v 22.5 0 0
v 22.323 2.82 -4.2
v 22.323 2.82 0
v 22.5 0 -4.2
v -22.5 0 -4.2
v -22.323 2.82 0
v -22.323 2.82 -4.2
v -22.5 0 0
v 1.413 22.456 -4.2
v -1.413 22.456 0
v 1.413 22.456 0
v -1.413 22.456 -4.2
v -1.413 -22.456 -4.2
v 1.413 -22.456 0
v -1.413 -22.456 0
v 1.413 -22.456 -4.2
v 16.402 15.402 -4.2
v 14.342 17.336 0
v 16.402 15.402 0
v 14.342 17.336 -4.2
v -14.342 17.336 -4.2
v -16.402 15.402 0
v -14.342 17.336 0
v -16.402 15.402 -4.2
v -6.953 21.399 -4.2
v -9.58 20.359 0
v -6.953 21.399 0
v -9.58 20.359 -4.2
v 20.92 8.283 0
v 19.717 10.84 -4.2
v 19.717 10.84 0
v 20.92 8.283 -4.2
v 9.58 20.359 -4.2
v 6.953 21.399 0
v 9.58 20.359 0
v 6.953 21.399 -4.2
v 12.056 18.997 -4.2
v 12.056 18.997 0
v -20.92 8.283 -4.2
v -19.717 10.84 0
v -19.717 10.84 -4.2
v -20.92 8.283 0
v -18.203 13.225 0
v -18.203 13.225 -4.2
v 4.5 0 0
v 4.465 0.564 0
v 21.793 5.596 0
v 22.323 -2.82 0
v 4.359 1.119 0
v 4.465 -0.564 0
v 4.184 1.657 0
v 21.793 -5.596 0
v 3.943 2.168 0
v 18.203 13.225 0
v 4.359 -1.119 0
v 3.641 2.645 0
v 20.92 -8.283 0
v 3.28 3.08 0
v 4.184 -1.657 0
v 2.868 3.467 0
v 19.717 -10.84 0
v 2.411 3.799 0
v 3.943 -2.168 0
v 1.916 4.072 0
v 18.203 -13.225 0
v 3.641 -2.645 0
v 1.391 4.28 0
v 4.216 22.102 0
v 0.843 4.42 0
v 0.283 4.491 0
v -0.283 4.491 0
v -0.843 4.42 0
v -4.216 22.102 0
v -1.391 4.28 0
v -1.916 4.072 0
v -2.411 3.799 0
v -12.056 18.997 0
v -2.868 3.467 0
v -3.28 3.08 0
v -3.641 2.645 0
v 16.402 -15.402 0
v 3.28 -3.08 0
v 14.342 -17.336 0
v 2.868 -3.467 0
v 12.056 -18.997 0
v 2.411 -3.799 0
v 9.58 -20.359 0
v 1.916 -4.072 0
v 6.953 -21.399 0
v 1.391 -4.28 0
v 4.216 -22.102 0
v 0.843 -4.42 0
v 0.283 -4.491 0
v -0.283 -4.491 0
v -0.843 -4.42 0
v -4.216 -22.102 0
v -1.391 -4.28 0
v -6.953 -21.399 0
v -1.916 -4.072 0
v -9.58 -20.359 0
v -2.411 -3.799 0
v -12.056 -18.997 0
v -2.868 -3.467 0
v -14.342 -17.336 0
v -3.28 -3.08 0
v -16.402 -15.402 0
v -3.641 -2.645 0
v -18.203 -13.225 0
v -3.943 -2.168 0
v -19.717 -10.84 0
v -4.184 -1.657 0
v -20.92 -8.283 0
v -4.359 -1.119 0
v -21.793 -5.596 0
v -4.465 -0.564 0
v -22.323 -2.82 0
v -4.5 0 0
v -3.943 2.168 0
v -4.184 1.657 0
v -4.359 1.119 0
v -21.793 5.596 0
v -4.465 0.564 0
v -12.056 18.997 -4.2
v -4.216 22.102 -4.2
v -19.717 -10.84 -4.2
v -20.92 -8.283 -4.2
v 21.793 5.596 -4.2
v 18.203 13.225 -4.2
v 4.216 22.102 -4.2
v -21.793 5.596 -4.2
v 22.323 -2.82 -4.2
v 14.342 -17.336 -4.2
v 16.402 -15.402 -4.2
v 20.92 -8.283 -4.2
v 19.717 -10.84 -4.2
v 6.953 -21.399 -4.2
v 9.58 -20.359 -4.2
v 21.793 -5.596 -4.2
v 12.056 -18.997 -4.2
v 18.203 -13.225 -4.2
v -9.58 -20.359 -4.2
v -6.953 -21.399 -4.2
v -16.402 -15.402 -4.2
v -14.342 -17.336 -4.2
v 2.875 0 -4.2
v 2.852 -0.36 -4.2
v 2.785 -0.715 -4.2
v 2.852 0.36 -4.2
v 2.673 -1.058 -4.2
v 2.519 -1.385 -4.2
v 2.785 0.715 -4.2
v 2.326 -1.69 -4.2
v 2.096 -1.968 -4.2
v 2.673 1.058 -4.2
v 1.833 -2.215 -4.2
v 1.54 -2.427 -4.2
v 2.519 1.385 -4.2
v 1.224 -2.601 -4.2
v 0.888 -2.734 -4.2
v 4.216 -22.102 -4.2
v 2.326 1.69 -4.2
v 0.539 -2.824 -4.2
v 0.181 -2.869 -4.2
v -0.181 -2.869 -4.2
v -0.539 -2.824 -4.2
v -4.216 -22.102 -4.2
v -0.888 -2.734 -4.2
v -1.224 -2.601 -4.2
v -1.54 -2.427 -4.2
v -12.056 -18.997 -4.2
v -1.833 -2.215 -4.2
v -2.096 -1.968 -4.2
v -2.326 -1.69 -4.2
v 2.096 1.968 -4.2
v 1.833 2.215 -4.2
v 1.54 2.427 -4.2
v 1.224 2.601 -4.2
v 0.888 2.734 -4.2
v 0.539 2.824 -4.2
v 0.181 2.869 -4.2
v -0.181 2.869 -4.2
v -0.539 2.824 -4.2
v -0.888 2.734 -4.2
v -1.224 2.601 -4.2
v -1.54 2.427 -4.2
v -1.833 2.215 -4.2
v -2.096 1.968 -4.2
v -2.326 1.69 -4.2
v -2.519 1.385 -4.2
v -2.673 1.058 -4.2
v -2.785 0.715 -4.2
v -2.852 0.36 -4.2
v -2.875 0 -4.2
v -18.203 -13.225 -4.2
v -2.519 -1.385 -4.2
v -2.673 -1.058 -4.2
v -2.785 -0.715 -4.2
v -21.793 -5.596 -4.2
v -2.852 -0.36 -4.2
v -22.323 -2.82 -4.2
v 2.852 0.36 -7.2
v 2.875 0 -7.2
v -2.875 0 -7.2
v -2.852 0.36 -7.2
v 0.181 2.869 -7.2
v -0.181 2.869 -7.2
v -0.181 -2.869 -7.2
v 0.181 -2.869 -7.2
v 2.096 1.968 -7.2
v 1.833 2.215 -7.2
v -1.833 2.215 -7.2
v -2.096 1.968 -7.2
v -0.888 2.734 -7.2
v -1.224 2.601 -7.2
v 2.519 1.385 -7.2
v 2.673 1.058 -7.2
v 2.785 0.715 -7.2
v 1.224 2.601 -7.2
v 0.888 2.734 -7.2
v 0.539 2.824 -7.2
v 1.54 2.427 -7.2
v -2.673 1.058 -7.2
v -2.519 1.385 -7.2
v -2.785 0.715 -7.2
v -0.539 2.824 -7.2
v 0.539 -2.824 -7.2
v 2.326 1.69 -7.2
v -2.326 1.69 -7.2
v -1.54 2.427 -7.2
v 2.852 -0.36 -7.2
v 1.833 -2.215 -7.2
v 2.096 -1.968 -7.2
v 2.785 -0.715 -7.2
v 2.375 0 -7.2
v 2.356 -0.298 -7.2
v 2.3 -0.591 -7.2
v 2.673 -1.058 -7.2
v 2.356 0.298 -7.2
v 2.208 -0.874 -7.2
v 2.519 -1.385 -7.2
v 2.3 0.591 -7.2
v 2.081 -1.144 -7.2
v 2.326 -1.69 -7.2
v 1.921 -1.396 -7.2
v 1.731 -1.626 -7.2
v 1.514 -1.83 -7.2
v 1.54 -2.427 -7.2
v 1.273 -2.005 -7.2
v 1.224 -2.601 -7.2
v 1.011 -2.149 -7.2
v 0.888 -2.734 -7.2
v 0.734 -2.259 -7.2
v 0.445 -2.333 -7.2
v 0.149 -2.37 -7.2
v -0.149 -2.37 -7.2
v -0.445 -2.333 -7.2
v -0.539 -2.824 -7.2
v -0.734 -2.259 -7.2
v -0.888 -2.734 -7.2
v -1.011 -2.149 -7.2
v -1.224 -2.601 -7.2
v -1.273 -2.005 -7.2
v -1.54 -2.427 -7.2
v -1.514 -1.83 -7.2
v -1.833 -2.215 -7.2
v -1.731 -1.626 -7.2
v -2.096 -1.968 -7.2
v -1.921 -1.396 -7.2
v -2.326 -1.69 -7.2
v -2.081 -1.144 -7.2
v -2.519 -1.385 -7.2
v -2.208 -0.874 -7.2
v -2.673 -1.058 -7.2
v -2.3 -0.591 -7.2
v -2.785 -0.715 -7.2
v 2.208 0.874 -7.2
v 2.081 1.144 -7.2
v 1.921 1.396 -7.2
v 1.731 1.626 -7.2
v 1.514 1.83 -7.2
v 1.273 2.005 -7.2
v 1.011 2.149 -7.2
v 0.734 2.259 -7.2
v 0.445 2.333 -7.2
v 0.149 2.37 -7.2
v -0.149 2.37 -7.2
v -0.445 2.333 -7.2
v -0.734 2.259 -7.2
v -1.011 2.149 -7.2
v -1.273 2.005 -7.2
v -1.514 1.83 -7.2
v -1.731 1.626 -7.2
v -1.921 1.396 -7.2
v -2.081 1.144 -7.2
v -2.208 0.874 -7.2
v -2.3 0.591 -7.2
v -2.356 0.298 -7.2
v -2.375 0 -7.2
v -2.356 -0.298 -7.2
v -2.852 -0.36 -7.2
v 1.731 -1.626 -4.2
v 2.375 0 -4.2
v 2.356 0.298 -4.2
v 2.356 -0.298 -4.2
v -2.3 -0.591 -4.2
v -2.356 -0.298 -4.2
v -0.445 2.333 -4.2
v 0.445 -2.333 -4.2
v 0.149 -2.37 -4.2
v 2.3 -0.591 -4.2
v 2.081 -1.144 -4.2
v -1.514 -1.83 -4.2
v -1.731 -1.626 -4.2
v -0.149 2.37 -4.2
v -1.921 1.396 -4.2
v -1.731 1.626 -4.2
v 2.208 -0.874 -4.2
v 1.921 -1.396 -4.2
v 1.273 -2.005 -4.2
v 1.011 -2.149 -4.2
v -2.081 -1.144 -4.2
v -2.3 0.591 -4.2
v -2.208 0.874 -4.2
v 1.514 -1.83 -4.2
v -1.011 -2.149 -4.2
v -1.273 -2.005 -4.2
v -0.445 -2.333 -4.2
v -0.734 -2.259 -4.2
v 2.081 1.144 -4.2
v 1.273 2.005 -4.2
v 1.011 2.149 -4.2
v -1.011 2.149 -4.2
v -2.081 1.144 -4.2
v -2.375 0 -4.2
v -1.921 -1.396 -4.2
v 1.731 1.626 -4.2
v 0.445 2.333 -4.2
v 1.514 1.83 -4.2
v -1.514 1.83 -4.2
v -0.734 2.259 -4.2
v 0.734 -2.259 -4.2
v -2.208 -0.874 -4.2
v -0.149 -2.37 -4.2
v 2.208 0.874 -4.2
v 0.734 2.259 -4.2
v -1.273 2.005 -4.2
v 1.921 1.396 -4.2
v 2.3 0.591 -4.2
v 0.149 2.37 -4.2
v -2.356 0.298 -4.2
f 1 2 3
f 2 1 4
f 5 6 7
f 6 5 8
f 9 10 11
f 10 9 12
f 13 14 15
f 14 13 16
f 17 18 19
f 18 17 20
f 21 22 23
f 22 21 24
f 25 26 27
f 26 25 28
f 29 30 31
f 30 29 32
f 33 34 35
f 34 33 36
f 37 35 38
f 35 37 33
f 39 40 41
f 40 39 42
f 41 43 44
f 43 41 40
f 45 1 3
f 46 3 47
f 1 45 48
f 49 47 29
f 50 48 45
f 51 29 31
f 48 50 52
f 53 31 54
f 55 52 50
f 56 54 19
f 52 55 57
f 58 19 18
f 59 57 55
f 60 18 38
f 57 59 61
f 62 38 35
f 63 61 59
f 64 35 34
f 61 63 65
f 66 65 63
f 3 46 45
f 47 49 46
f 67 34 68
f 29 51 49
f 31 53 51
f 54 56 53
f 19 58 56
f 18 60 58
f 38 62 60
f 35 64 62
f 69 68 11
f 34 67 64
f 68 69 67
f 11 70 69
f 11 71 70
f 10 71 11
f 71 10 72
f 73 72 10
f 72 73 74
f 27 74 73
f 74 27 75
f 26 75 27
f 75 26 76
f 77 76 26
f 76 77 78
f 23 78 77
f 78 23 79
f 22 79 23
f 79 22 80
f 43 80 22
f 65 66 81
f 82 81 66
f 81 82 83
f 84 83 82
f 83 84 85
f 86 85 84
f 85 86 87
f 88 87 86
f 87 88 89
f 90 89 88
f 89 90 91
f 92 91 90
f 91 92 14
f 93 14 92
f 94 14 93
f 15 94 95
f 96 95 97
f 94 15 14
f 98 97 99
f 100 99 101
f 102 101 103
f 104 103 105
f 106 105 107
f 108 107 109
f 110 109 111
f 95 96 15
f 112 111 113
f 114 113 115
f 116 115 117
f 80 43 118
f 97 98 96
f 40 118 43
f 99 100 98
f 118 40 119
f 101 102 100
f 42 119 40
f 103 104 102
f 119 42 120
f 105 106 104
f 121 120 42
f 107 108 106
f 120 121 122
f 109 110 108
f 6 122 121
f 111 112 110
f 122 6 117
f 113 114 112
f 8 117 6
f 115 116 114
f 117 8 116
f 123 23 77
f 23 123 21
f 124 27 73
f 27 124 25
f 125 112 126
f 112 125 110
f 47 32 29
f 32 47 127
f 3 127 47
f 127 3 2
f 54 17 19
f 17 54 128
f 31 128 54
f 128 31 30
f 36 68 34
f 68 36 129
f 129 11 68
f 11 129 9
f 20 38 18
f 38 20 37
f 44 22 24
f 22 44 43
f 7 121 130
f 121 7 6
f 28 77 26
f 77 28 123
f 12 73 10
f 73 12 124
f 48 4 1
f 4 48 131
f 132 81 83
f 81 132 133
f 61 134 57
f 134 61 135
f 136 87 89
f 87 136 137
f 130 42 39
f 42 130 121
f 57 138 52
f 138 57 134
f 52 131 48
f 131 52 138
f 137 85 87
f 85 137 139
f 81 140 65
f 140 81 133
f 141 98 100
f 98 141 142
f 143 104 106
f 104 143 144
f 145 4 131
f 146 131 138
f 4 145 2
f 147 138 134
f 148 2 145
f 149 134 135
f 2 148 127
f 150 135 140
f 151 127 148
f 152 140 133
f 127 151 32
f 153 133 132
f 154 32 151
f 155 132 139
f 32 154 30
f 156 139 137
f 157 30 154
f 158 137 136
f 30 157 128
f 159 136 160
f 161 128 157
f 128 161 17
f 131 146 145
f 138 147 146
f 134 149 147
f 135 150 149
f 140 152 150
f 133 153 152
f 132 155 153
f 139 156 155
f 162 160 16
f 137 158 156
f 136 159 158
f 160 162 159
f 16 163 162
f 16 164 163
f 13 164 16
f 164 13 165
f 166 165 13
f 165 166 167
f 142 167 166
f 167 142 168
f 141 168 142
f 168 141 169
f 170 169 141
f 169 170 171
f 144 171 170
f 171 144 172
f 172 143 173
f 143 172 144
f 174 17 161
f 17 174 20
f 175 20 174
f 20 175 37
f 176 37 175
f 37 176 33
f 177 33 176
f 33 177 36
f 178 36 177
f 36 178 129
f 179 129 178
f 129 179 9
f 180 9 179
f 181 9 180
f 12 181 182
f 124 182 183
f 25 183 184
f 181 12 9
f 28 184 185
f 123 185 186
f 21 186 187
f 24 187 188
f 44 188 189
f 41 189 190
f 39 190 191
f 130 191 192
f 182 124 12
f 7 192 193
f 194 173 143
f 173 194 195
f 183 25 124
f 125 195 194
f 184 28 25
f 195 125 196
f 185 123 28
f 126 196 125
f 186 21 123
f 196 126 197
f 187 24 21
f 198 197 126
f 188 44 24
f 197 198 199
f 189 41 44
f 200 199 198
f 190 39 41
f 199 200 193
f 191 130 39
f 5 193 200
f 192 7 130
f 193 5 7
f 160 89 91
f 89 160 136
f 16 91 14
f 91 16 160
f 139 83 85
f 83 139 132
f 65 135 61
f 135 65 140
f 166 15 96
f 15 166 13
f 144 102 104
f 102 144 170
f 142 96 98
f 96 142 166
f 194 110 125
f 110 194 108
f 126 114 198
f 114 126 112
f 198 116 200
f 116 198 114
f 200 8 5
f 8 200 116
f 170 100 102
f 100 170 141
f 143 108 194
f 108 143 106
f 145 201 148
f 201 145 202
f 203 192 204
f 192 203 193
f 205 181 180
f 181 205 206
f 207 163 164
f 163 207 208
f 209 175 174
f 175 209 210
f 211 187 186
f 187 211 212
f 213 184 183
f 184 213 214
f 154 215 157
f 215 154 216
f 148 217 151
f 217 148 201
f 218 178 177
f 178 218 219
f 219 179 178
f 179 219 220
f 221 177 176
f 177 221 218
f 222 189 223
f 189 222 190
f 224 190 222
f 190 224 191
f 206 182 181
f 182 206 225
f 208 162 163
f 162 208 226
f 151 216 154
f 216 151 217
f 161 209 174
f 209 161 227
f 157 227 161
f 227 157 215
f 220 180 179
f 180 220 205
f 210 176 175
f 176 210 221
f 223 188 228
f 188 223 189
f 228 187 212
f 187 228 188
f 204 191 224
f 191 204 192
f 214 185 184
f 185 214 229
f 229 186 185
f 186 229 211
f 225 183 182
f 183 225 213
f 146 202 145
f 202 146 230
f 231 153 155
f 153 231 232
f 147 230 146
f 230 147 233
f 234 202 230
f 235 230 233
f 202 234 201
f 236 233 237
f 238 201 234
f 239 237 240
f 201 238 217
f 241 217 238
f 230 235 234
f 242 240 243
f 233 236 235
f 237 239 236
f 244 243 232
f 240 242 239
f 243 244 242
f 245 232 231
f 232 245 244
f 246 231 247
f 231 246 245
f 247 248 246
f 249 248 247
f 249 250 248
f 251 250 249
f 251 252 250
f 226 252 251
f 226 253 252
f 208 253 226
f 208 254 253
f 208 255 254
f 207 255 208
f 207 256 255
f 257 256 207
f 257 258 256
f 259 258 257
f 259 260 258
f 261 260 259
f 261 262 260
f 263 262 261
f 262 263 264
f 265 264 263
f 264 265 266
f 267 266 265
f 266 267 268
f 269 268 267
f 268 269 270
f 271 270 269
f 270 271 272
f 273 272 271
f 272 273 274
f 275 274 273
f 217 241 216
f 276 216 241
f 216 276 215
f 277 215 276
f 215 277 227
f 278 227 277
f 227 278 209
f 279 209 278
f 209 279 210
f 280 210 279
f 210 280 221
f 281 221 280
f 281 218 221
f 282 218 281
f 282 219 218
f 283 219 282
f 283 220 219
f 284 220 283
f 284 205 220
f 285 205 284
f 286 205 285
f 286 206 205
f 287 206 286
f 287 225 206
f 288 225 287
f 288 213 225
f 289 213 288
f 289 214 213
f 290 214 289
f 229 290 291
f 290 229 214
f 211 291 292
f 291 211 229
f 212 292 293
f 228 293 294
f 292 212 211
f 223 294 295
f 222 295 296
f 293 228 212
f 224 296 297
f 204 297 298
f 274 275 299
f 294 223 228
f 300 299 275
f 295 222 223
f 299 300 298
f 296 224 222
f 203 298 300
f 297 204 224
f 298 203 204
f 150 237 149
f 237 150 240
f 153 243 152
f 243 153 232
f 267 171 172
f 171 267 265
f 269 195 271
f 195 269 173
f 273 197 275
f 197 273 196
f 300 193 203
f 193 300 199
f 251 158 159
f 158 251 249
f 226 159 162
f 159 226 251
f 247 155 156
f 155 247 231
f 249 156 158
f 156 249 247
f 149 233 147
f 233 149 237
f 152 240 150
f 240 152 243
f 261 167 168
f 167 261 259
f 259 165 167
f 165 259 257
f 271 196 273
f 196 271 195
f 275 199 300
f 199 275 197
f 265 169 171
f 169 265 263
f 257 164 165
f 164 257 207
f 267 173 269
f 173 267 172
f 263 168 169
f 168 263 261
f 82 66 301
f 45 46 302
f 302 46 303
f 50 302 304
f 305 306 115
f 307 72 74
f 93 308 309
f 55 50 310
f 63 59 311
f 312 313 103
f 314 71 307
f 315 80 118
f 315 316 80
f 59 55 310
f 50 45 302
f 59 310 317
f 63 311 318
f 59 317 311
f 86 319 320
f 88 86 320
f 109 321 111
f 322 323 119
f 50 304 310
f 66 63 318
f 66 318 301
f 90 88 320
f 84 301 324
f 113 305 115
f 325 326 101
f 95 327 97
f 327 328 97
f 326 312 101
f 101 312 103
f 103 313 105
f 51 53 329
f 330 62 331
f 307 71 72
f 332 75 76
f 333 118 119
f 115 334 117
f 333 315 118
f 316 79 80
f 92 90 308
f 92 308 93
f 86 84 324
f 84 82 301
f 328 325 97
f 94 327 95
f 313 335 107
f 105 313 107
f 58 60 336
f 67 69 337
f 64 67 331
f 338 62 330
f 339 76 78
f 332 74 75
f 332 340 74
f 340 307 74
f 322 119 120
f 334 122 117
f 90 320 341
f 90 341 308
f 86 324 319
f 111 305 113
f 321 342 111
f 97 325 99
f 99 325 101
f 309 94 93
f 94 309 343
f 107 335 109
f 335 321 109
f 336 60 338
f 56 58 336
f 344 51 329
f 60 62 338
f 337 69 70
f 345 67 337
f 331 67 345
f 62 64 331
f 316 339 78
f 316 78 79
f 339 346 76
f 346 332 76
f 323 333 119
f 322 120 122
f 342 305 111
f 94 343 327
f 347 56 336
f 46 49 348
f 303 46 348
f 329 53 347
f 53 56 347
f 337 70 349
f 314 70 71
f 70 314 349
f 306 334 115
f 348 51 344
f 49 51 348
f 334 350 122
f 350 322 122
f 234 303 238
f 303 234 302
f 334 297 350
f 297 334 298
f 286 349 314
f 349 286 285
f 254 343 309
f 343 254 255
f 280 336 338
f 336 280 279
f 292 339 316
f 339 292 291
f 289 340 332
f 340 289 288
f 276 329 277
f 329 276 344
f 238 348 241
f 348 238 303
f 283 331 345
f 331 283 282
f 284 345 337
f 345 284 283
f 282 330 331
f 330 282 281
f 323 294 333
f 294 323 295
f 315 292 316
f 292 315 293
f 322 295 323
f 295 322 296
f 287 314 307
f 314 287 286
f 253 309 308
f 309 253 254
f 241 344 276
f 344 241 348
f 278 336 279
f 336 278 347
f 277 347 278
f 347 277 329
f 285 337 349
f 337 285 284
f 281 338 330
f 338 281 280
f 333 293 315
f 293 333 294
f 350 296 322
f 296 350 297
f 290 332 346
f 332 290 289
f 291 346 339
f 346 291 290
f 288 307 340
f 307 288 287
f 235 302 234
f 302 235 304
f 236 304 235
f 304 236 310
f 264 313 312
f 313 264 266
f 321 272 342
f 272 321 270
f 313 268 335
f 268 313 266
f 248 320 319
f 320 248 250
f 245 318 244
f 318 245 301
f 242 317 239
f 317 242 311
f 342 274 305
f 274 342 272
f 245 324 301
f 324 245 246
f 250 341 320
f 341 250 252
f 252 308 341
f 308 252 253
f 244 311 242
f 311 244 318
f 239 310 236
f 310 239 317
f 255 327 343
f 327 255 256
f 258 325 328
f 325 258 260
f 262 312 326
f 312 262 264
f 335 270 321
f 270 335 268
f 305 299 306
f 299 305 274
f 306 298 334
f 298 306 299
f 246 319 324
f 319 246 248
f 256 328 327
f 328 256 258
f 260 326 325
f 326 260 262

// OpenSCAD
$fn = 50;


difference() {
	union() {
		translate(v = [0, 0, -4.2000000000]) {
			cylinder(h = 4.2000000000, r = 22.5000000000);
		}
		translate(v = [0, 0, -7.2000000000]) {
			cylinder(h = 7.2000000000, r = 2.8750000000);
		}
	}
	union() {
		translate(v = [0, 0, 0]) {
			rotate(a = [0, 0, 0]) {
				difference() {
					union() {
						translate(v = [0, 0, -7.2000000000]) {
							cylinder(h = 7.2000000000, r = 2.2500000000);
						}
						translate(v = [0, 0, -4.2000000000]) {
							cylinder(h = 4.2000000000, r1 = 2.3750000000, r2 = 4.5000000000);
						}
						translate(v = [0, 0, -7.2000000000]) {
							cylinder(h = 7.2000000000, r = 2.3750000000);
						}
						translate(v = [0, 0, -7.2000000000]) {
							cylinder(h = 7.2000000000, r = 2.2500000000);
						}
					}
					union();
				}
			}
		}
	}
}
